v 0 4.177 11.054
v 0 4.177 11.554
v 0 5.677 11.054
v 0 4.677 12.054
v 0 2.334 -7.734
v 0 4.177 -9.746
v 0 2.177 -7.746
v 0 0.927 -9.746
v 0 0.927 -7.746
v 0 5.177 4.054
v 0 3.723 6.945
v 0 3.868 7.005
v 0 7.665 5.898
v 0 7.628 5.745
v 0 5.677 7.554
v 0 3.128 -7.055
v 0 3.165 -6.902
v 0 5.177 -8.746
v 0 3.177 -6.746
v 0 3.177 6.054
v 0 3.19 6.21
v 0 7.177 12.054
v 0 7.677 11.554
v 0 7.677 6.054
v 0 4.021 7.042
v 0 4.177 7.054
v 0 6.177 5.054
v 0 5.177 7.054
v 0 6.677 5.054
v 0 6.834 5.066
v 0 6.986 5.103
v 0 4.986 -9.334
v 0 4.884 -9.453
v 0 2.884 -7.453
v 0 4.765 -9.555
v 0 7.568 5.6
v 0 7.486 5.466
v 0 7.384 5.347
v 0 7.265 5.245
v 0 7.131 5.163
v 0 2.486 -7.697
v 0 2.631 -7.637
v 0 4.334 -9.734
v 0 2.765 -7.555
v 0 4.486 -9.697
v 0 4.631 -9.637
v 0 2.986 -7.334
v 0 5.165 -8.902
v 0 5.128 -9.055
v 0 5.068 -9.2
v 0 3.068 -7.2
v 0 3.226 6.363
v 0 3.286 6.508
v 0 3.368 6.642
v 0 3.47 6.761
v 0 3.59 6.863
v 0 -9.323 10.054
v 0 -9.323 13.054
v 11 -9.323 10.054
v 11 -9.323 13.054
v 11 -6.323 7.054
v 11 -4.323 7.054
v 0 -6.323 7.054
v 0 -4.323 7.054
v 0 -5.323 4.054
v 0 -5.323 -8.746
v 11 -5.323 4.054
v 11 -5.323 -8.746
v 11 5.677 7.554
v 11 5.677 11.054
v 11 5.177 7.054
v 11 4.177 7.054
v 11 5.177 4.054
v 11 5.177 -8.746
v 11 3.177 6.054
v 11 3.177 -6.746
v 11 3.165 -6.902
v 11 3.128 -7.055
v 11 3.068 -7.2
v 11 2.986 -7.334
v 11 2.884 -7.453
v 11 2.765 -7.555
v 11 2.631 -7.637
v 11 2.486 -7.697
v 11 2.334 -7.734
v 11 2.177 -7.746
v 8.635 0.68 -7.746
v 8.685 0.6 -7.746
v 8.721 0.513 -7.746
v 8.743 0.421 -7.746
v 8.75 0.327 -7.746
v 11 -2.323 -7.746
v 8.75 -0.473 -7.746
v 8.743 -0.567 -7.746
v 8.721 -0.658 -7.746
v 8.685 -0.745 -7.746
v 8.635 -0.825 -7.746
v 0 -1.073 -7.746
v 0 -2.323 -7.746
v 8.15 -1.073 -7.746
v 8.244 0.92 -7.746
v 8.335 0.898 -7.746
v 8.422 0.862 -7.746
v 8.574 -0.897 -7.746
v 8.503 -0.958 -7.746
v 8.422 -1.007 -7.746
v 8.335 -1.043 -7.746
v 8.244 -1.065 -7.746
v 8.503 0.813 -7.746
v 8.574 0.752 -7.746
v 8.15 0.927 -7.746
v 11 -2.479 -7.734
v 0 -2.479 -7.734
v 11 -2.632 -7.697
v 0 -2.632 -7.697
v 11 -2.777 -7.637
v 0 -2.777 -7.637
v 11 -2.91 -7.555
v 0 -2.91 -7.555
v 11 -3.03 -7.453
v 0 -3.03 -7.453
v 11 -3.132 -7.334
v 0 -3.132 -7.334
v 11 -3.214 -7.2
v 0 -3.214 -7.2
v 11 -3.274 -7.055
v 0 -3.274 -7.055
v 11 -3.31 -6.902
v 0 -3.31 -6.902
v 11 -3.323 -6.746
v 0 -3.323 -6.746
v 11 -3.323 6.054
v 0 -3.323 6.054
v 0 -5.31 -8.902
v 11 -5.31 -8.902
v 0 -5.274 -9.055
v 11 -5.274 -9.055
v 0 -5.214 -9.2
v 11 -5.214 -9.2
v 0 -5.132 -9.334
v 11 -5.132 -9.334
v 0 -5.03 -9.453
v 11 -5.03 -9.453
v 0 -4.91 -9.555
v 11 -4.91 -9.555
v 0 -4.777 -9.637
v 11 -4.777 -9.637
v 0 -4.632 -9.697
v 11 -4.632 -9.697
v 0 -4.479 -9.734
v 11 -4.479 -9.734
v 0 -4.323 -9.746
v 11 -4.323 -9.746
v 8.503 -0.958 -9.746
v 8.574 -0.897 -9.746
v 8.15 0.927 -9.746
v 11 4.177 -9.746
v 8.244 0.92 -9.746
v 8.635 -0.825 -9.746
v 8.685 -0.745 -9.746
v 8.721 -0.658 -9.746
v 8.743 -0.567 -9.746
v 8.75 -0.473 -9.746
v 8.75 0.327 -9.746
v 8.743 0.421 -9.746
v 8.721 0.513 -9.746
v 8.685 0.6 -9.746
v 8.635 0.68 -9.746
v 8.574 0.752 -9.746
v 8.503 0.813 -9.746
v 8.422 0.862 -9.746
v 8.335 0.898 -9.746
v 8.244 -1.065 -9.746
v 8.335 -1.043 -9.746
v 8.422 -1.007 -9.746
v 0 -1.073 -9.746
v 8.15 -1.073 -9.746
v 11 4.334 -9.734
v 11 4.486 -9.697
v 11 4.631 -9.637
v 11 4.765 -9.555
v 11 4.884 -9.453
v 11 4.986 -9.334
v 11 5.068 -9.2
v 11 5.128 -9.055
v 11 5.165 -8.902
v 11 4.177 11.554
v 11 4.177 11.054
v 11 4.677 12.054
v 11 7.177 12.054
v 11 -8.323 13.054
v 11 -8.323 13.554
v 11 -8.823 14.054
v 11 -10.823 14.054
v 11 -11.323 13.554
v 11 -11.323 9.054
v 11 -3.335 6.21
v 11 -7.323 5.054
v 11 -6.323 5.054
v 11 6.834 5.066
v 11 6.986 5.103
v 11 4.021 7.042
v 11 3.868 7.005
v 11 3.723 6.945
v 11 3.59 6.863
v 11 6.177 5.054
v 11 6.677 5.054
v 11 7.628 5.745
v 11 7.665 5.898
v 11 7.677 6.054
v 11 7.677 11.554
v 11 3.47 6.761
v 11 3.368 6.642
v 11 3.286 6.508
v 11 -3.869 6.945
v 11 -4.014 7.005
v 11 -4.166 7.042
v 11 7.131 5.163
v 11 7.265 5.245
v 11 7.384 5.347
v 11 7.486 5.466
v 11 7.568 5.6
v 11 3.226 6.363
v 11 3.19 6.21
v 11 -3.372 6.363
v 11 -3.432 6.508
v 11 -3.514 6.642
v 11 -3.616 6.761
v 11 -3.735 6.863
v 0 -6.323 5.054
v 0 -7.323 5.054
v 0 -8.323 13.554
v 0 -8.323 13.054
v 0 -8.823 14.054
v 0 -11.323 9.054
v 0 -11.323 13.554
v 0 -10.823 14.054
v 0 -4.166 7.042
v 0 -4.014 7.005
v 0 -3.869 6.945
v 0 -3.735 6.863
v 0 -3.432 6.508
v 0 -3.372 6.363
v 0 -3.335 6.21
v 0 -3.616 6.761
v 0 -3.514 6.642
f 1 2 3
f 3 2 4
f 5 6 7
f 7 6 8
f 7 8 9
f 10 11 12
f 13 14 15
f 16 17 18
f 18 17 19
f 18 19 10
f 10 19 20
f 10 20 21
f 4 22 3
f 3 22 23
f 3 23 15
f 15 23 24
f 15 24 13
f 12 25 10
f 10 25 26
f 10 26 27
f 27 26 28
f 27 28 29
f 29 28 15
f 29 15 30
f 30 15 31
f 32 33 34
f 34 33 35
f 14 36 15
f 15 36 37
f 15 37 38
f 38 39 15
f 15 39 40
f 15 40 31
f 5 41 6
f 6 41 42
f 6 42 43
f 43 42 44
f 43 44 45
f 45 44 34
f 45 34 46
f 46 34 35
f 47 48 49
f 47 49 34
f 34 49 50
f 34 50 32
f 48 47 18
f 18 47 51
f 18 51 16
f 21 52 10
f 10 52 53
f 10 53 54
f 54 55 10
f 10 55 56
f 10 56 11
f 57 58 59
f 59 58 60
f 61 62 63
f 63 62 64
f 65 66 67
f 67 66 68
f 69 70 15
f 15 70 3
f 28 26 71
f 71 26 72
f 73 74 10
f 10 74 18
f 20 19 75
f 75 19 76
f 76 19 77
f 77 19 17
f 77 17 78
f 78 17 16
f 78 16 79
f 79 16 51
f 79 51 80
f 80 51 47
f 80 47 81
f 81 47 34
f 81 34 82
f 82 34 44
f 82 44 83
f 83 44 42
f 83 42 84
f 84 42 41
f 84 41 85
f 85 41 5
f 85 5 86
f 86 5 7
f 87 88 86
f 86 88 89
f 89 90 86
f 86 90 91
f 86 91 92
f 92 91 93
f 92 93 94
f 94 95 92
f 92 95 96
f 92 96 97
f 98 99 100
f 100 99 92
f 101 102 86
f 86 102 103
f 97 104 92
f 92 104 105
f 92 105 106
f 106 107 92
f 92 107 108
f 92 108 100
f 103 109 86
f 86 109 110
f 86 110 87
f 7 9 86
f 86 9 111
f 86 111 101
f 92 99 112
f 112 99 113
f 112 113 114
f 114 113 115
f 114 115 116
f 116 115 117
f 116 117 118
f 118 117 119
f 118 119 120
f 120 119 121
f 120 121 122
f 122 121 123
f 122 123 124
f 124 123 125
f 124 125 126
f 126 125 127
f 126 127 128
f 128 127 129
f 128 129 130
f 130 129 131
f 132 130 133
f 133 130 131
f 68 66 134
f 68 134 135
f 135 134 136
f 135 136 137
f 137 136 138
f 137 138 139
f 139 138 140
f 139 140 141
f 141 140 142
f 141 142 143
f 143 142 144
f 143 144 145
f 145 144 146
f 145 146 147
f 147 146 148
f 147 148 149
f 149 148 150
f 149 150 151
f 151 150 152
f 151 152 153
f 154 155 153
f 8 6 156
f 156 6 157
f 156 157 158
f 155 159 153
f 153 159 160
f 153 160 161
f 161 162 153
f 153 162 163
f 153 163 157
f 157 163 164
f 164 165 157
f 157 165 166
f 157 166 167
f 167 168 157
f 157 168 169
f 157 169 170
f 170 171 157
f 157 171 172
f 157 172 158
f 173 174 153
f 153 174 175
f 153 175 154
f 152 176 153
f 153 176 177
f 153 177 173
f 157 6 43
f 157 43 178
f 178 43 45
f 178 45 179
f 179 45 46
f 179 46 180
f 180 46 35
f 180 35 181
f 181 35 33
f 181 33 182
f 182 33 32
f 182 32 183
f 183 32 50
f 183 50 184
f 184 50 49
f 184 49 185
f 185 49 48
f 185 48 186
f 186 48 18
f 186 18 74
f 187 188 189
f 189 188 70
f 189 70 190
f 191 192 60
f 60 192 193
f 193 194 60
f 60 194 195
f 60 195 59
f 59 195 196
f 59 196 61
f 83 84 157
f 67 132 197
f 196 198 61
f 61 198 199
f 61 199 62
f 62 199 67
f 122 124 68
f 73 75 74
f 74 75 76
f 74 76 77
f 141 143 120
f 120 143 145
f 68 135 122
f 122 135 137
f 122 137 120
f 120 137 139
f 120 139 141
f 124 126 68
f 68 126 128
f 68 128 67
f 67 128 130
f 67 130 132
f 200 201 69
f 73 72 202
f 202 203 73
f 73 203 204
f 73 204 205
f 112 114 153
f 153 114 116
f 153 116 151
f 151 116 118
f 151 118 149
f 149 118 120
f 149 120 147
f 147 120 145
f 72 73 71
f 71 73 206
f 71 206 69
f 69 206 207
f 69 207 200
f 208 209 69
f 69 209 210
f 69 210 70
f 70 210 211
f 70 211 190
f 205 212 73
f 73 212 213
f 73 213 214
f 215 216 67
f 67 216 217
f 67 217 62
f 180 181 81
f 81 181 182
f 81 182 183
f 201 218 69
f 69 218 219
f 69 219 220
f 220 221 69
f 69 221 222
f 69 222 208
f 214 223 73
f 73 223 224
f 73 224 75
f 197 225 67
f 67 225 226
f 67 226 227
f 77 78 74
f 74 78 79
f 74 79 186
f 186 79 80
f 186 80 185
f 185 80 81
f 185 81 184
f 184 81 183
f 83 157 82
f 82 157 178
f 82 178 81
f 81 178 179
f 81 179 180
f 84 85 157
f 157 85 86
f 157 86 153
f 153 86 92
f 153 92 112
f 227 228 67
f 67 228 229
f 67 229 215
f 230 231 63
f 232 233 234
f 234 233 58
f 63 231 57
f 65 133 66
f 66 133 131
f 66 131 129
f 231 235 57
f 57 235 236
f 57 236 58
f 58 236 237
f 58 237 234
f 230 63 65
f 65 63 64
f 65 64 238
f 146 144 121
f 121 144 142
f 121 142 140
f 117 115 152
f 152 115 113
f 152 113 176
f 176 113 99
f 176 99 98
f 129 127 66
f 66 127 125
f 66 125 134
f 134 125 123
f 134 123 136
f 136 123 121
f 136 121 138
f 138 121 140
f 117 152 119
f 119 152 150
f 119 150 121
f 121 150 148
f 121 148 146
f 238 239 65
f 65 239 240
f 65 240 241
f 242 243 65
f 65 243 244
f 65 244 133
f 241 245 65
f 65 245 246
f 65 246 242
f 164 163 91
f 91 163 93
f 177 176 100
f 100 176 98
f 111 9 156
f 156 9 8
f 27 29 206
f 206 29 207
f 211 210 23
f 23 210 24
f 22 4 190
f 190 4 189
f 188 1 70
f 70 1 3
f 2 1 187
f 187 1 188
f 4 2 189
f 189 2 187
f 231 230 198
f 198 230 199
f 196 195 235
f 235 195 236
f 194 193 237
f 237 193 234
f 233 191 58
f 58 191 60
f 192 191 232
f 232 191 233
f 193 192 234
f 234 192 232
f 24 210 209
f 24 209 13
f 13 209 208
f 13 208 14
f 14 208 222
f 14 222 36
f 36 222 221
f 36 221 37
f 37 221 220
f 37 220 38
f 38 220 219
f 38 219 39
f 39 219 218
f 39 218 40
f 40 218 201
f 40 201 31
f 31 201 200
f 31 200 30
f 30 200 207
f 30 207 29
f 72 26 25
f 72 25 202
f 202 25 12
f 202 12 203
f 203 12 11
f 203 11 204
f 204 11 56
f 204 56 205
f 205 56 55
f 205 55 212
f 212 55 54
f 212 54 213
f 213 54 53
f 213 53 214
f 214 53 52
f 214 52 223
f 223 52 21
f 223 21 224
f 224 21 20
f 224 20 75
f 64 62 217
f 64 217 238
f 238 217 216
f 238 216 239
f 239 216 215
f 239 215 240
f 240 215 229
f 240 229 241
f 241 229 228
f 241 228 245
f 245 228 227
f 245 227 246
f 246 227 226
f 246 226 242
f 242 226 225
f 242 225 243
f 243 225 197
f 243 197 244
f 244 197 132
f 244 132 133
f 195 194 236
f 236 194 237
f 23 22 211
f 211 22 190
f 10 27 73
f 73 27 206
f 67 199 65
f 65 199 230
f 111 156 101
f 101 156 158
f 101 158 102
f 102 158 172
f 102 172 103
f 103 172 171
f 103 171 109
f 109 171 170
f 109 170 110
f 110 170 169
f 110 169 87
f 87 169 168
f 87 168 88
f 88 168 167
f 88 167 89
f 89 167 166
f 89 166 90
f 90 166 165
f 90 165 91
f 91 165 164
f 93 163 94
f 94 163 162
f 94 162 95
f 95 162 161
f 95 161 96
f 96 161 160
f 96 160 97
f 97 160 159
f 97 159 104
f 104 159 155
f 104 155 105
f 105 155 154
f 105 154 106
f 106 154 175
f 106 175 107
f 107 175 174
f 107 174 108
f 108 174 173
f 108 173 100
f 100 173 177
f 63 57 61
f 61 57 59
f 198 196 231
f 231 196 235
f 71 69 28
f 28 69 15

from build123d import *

# Parameters (mm, degrees)
BOSS_EXTRUDE1_DEPTH = 11
SKETCH2_W           = 6.5
SKETCH2_H           = 2
CUT_EXTRUDE1_DEPTH  = 11
SKETCH3_W           = 11
SKETCH3_H           = 2
BOSS_EXTRUDE2_DEPTH = 2.5
SKETCH4_W           = 7.103618525
SKETCH4_H           = 2.480120743
CUT_EXTRUDE2_DEPTH  = 32.5
SKETCH5_W           = 11
SKETCH5_H           = 2
BOSS_EXTRUDE3_DEPTH = 5
SKETCH6_W           = 11
SKETCH6_H           = 1
BOSS_EXTRUDE4_DEPTH = 1.5
CHAMFER1_SIZE       = 0.5
SKETCH7_W           = 11
SKETCH7_H           = 2
BOSS_EXTRUDE5_DEPTH = 6
SKETCH8_W           = 9.245207015
SKETCH8_H           = 4.24468792
CUT_EXTRUDE3_DEPTH  = 26
SKETCH9_W           = 11
SKETCH9_H           = 2
BOSS_EXTRUDE6_DEPTH = 7
SKETCH10_W          = 11
SKETCH10_H          = 1
BOSS_EXTRUDE7_DEPTH = 1
CHAMFER2_SIZE       = 0.5
FILLET1_R           = 1
CHAMFER3_SIZE       = 0.5
CHAMFER4_SIZE       = 1
SKETCH11_W          = 2.25
SKETCH11_H          = 2
CUT_EXTRUDE4_DEPTH  = 10
FILLET2_R           = 0.6
CHAMFER5_SIZE       = 3
CHAMFER6_SIZE       = 4
CHAMFER7_SIZE       = 0.5


with BuildPart() as part:
    # Sketch1 → Boss-Extrude1 (new body)
    with BuildSketch(Plane(origin=(0, 0, 0), x_dir=(0, 0, -1), z_dir=(1, 0, 0))):
        with BuildLine():
            Line((-12.25399361, 3.177316294), (-12.25399361, 5.177316294))
            Line((-12.25399361, 5.177316294), (8.74600639, 5.177316294))
            ThreePointArc((8.74600639, 5.177316294), (9.453113171, 4.884423075), (9.74600639, 4.177316294))
            Line((9.74600639, 4.177316294), (9.74600639, -4.322683706))
            ThreePointArc((9.74600639, -4.322683706), (9.453113171, -5.029790487), (8.74600639, -5.322683706))
            Line((8.74600639, -5.322683706), (-12.25399361, -5.322683706))
            Line((-12.25399361, -5.322683706), (-12.25399361, -3.322683706))
            Line((-12.25399361, -3.322683706), (6.74600639, -3.322683706))
            ThreePointArc((6.74600639, -3.322683706), (7.453113171, -3.029790487), (7.74600639, -2.322683706))
            Line((7.74600639, -2.322683706), (7.74600639, 2.177316294))
            ThreePointArc((7.74600639, 2.177316294), (7.453113171, 2.884423075), (6.74600639, 3.177316294))
            Line((6.74600639, 3.177316294), (-12.25399361, 3.177316294))
        make_face()
    extrude(amount=BOSS_EXTRUDE1_DEPTH)

    # Sketch2 → Cut-Extrude1 (cut)
    with BuildSketch(Plane.XY.offset(-7.74600639)):
        with Locations((5.5, -0.072683706)):
            Rectangle(SKETCH2_W, SKETCH2_H)
    extrude(amount=-CUT_EXTRUDE1_DEPTH, mode=Mode.SUBTRACT)

    # Sketch3 → Boss-Extrude2 (add)
    with BuildSketch(Plane(origin=(0, 5.177316294, 0), x_dir=(1, 0, 0), z_dir=(0, 1, 0))):
        with Locations((5.5, -6.05399361)):
            Rectangle(SKETCH3_W, SKETCH3_H)
    extrude(amount=BOSS_EXTRUDE2_DEPTH)

    # Sketch4 → Cut-Extrude2 (cut)
    with BuildSketch(Plane.ZY):
        with Locations((10.605802872, 3.937255923)):
            Rectangle(SKETCH4_W, SKETCH4_H)
    extrude(amount=-CUT_EXTRUDE2_DEPTH, mode=Mode.SUBTRACT)

    # Sketch5 → Boss-Extrude3 (add)
    with BuildSketch(Plane.XY.offset(7.05399361)):
        with Locations((5.5, 6.677316294)):
            Rectangle(SKETCH5_W, SKETCH5_H)
    extrude(amount=BOSS_EXTRUDE3_DEPTH)

    # Sketch6 → Boss-Extrude4 (add)
    with BuildSketch(Plane.XZ.offset(-5.677316294)):
        with Locations((5.5, 11.55399361)):
            Rectangle(SKETCH6_W, SKETCH6_H)
    extrude(amount=BOSS_EXTRUDE4_DEPTH)

    # Chamfer1
    chamfer1_edges = [part.edges().sort_by_distance(p)[0] for p in [
        (5.5, 4.177316294, 12.05399361),
    ]]
    chamfer(chamfer1_edges, length=CHAMFER1_SIZE)

    # Sketch7 → Boss-Extrude5 (add)
    with BuildSketch(Plane.XZ.offset(5.322683706)):
        with Locations((5.5, 6.05399361)):
            Rectangle(SKETCH7_W, SKETCH7_H)
    extrude(amount=BOSS_EXTRUDE5_DEPTH)

    # Sketch8 → Cut-Extrude3 (cut)
    with BuildSketch(Plane(origin=(11, 0, 0), x_dir=(0, 0, -1), z_dir=(1, 0, 0))):
        with Locations((-11.676597118, -3.200339746)):
            Rectangle(SKETCH8_W, SKETCH8_H)
    extrude(amount=-CUT_EXTRUDE3_DEPTH, mode=Mode.SUBTRACT)

    # Sketch9 → Boss-Extrude6 (add)
    with BuildSketch(Plane.XY.offset(7.05399361)):
        with Locations((5.5, -10.322683706)):
            Rectangle(SKETCH9_W, SKETCH9_H)
    extrude(amount=BOSS_EXTRUDE6_DEPTH)

    # Sketch10 → Boss-Extrude7 (add)
    with BuildSketch(Plane(origin=(0, -9.322683706, 0), x_dir=(1, 0, 0), z_dir=(0, 1, 0))):
        with Locations((5.5, -13.55399361)):
            Rectangle(SKETCH10_W, SKETCH10_H)
    extrude(amount=BOSS_EXTRUDE7_DEPTH)

    # Chamfer2
    chamfer2_edges = [part.edges().sort_by_distance(p)[0] for p in [
        (5.5, -8.322683706, 14.05399361),
    ]]
    chamfer(chamfer2_edges, length=CHAMFER2_SIZE)

    # Fillet1
    fillet1_edges = [part.edges().sort_by_distance(p)[0] for p in [
        (5.5, -3.322683706, 7.05399361),
        (5.5, 7.677316294, 5.05399361),
        (5.5, 3.177316294, 7.05399361),
    ]]
    fillet(fillet1_edges, radius=FILLET1_R)

    # Chamfer3
    chamfer3_edges = [part.edges().sort_by_distance(p)[0] for p in [
        (5.5, -11.322683706, 14.05399361),
        (5.5, 7.677316294, 12.05399361),
    ]]
    chamfer(chamfer3_edges, length=CHAMFER3_SIZE)

    # Chamfer4
    chamfer4_edges = [part.edges().sort_by_distance(p)[0] for p in [
        (5.5, -5.322683706, 5.05399361),
        (5.5, 5.177316294, 5.05399361),
    ]]
    chamfer(chamfer4_edges, length=CHAMFER4_SIZE)

    # Sketch11 → Cut-Extrude4 (cut)
    with BuildSketch(Plane(origin=(0, 0, -9.74600639), x_dir=(-1, 0, 0), z_dir=(0, 0, -1))):
        with Locations((-1.125, -0.072683706)):
            Rectangle(SKETCH11_W, SKETCH11_H)
    extrude(amount=-CUT_EXTRUDE4_DEPTH, mode=Mode.SUBTRACT)

    # Fillet2
    fillet2_edges = [part.edges().sort_by_distance(p)[0] for p in [
        (8.75, 0.927316294, -8.74600639),
        (8.75, -1.072683706, -8.74600639),
    ]]
    fillet(fillet2_edges, radius=FILLET2_R)

    # Chamfer5
    chamfer5_edges = [part.edges().sort_by_distance(p)[0] for p in [
        (5.5, -9.322683706, 7.05399361),
    ]]
    chamfer(chamfer5_edges, length=CHAMFER5_SIZE)

    # Chamfer6
    chamfer6_edges = [part.edges().sort_by_distance(p)[0] for p in [
        (5.5, -11.322683706, 5.05399361),
    ]]
    chamfer(chamfer6_edges, length=CHAMFER6_SIZE)

    # Chamfer7
    chamfer7_edges = [part.edges().sort_by_distance(p)[0] for p in [
        (5.5, 5.677316294, 7.05399361),
    ]]
    chamfer(chamfer7_edges, length=CHAMFER7_SIZE)


solid = part.part
